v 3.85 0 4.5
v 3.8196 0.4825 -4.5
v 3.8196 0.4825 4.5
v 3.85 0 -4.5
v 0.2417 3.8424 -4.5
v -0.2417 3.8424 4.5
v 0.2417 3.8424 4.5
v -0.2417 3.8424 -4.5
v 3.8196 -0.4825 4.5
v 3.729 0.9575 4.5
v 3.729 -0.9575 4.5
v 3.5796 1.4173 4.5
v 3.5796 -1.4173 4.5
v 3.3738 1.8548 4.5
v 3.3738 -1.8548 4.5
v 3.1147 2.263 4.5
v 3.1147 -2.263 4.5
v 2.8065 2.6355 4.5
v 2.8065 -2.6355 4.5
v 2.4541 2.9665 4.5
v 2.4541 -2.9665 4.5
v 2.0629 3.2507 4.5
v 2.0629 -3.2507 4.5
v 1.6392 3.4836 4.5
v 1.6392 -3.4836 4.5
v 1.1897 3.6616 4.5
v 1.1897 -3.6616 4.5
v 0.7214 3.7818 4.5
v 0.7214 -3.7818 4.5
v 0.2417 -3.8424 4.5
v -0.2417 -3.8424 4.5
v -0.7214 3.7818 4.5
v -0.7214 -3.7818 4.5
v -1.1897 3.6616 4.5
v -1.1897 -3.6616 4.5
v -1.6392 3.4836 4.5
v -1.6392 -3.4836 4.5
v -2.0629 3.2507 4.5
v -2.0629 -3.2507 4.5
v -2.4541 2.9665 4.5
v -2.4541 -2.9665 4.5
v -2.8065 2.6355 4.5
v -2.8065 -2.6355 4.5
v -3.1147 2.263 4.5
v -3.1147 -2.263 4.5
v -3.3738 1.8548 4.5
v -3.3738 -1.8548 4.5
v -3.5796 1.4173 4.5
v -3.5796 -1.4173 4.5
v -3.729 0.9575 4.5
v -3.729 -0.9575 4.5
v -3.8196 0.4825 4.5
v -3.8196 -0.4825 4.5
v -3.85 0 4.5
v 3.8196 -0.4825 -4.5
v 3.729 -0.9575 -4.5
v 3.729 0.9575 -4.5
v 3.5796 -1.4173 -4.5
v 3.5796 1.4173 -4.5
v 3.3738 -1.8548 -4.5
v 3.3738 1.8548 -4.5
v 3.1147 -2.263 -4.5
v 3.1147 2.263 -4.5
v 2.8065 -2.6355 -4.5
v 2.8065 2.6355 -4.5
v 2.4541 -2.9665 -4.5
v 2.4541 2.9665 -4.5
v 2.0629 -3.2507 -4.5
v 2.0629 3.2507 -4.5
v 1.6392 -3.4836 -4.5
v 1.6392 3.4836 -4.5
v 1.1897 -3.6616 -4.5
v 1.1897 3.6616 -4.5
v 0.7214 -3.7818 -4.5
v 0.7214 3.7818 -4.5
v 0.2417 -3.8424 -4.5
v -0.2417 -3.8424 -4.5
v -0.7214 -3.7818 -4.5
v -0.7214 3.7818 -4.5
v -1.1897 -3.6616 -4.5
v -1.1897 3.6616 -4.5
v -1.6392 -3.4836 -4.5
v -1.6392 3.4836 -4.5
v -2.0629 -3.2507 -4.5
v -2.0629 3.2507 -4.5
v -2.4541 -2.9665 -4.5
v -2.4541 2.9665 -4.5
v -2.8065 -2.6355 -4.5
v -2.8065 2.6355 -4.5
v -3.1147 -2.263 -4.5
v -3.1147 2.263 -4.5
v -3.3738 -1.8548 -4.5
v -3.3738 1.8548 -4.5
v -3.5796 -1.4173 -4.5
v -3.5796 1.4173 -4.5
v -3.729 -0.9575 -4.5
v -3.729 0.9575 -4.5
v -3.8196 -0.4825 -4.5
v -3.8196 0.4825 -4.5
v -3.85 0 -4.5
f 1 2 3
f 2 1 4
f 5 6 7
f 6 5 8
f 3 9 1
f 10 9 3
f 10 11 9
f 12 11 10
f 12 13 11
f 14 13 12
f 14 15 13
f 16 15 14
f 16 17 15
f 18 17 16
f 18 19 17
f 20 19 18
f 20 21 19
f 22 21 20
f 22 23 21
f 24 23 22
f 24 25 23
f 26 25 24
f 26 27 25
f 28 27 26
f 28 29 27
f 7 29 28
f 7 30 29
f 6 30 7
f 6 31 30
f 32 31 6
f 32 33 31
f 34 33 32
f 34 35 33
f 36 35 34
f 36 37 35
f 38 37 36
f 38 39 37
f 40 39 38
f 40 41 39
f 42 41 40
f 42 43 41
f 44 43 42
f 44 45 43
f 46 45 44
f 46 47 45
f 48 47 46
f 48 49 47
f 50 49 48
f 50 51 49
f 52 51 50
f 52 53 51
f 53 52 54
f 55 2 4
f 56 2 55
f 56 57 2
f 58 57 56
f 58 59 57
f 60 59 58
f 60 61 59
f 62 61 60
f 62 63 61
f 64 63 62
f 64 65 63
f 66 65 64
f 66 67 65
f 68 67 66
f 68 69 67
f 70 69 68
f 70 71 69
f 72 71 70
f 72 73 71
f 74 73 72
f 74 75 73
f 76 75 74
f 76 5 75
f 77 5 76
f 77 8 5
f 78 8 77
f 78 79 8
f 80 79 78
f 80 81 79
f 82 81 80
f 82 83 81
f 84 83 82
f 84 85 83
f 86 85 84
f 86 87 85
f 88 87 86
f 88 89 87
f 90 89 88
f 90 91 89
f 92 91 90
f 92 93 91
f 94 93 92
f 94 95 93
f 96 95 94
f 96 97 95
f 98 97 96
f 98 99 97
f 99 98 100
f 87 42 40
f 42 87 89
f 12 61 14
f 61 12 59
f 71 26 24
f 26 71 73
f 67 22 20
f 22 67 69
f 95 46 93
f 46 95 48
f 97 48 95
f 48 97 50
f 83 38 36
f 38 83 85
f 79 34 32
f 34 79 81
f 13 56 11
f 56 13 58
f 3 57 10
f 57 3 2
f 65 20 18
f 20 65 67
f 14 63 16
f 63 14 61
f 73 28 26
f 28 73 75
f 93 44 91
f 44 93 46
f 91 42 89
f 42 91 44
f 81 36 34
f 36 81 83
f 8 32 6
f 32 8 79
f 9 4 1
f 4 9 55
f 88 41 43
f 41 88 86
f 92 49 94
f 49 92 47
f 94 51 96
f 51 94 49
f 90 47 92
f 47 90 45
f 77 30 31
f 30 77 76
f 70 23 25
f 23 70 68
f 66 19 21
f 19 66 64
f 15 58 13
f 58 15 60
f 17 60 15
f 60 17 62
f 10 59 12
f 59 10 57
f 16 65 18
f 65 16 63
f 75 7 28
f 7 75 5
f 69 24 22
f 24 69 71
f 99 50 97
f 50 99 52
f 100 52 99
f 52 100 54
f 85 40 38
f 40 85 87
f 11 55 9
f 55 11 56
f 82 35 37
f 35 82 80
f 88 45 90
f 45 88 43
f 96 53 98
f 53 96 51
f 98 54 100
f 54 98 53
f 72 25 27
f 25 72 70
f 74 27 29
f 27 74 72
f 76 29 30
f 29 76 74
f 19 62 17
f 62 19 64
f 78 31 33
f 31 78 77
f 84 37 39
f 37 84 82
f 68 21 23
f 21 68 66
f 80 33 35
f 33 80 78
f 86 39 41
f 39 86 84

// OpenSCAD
$fn = 50;


difference() {
	union() {
		translate(v = [0, 0, -4.5000000000]) {
			cylinder(h = 9, r = 3.8500000000);
		}
	}
	union() {
		translate(v = [0, 0, -100.0000000000]) {
			cylinder(h = 200, r = 0);
		}
	}
}
